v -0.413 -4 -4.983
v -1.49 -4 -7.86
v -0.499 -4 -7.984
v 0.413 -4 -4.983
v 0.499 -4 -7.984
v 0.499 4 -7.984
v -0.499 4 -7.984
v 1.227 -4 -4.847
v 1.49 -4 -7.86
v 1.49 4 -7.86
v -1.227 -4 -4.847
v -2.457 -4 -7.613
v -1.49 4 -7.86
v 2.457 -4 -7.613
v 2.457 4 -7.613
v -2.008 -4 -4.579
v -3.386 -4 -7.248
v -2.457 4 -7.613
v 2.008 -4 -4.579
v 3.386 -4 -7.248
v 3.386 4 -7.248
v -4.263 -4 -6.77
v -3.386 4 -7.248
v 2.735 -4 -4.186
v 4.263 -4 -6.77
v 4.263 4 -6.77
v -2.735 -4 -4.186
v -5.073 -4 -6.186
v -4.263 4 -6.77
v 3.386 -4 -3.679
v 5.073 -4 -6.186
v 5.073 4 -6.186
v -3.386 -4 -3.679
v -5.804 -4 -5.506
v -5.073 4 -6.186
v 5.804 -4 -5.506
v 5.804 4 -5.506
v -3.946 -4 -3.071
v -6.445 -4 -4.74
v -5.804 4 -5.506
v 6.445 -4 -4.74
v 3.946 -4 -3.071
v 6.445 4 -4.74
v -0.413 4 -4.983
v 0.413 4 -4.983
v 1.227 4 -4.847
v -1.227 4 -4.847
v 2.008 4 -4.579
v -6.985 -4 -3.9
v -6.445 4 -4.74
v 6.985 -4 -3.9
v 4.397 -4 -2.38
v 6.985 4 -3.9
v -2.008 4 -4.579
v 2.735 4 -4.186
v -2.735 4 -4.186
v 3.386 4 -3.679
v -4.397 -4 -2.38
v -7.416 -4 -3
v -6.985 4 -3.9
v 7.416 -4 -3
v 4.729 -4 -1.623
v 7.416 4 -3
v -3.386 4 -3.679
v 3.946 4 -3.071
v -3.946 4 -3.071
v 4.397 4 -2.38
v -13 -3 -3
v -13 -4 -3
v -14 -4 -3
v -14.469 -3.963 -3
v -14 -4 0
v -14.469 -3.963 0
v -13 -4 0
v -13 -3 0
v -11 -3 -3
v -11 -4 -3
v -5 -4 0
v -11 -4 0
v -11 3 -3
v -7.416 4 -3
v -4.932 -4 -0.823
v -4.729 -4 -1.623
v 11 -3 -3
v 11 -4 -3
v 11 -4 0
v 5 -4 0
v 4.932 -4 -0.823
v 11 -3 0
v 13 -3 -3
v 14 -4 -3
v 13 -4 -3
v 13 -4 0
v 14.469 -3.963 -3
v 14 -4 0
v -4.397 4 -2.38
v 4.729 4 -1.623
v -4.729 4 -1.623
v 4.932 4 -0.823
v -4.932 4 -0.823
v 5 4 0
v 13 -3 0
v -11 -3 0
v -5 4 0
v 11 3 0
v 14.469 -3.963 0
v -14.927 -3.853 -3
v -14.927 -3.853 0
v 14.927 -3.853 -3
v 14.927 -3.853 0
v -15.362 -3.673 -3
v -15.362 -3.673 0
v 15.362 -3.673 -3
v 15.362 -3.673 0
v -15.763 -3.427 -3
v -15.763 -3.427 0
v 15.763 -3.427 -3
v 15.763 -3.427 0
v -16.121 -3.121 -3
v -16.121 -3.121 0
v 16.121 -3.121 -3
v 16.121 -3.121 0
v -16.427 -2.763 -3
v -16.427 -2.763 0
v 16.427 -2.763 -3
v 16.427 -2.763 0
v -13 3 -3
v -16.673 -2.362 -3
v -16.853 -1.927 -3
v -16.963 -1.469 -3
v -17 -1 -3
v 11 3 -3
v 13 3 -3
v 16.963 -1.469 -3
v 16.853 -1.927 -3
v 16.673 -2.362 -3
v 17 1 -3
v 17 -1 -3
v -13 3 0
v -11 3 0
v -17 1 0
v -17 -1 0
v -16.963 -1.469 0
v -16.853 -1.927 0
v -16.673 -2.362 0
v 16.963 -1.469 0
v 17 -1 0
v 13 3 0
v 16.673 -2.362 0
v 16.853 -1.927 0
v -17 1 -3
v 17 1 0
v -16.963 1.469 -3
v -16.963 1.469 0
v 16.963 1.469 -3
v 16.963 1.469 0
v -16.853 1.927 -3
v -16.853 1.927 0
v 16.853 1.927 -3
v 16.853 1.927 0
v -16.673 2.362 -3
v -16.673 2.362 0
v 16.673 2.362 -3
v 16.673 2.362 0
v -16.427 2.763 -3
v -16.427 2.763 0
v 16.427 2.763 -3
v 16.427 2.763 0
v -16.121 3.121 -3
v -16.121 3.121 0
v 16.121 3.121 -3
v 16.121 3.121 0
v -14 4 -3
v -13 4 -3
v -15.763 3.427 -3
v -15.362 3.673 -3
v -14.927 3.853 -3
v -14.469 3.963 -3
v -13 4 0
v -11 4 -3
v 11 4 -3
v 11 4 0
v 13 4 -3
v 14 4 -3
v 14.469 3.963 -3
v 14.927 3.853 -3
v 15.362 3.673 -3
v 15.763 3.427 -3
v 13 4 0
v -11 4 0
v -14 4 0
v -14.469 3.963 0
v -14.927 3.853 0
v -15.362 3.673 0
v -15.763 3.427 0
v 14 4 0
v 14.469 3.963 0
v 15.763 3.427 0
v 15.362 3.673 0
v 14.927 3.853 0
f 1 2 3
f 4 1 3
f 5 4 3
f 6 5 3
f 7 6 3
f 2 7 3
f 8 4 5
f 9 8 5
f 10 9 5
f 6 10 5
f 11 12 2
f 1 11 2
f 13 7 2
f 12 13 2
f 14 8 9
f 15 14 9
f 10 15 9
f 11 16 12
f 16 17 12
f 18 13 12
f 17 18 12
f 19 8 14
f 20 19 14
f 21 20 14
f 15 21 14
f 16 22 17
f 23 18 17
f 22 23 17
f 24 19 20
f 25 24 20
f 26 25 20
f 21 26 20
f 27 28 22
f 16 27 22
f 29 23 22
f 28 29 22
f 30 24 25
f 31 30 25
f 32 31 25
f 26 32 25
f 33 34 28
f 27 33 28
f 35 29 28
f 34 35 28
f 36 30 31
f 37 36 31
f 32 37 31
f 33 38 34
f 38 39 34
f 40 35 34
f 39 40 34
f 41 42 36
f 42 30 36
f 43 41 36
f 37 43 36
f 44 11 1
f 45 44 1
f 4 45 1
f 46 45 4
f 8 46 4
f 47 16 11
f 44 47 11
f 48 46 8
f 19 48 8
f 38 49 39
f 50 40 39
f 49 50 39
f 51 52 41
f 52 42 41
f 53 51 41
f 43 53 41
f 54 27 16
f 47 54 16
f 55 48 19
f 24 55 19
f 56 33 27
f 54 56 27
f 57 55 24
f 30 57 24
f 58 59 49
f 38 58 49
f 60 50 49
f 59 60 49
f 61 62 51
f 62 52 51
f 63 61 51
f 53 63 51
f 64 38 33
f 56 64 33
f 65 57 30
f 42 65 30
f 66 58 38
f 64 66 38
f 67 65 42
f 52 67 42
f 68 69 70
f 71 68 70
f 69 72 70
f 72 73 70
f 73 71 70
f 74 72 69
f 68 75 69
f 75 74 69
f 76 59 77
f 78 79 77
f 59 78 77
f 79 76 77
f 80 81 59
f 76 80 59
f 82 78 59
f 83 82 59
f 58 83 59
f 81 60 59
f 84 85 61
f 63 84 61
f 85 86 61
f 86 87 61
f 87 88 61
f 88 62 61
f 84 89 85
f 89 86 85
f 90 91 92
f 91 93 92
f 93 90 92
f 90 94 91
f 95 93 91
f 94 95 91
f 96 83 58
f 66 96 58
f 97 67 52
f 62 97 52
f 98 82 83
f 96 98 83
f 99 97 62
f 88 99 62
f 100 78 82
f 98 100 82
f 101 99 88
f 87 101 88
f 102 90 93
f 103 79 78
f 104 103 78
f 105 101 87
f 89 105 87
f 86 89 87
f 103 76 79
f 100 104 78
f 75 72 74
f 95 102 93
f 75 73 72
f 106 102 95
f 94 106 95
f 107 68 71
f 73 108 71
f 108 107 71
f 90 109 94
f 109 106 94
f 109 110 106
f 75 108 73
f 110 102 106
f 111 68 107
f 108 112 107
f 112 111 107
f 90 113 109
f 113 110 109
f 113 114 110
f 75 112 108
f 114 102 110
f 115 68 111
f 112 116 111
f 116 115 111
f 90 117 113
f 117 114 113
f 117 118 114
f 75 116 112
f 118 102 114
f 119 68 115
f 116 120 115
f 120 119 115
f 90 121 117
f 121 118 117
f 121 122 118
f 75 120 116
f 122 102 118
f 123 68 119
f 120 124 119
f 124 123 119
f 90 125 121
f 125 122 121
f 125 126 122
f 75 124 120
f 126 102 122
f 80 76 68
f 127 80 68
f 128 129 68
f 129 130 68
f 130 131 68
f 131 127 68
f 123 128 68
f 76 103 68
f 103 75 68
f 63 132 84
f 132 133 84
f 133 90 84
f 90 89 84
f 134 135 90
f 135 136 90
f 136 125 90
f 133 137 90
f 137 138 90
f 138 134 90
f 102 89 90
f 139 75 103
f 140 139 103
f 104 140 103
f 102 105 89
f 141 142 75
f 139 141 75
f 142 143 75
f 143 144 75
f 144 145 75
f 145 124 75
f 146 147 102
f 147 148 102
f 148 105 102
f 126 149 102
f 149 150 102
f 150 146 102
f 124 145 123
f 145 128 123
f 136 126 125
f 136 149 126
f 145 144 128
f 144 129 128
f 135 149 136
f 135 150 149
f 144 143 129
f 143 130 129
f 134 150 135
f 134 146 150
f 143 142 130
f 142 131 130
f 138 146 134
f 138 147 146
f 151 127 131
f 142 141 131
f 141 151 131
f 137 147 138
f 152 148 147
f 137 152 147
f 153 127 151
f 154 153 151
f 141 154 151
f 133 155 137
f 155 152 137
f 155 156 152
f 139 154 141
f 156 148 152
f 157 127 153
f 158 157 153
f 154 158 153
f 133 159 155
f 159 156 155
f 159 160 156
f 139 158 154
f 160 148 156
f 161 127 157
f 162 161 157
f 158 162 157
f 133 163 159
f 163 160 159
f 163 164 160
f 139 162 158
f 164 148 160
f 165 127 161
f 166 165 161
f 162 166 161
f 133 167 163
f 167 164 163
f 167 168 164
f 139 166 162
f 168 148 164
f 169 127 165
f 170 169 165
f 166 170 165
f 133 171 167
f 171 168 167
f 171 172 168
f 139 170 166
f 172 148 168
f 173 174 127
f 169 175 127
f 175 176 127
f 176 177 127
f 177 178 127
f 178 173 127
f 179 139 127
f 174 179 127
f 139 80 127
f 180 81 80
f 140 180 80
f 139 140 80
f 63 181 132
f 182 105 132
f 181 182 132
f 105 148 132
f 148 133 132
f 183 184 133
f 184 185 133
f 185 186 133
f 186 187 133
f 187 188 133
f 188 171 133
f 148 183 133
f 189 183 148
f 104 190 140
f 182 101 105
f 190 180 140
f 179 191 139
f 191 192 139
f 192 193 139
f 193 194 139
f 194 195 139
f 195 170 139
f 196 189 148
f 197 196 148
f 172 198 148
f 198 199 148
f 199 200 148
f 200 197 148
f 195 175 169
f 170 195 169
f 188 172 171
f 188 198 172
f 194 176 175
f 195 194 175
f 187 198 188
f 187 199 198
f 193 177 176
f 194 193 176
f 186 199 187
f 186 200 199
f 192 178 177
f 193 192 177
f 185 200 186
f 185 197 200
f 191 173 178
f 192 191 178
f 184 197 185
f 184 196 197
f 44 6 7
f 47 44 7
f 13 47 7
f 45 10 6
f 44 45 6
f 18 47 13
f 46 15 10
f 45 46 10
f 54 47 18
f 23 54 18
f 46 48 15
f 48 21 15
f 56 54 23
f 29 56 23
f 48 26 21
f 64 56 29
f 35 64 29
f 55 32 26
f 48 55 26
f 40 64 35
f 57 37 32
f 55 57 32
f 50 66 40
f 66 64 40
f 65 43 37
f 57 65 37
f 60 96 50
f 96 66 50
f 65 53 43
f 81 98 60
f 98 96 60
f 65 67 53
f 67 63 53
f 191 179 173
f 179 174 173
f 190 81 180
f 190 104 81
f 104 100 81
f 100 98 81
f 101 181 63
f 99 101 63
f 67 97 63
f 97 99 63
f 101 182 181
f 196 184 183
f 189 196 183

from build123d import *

# Parameters (mm, degrees)
EXTRUDE_1_DEPTH     = 4
SKETCH_2_W          = 2
SKETCH_2_H          = 3
CUT_EXTRUDE_1_DEPTH = 1
FILLET_1_R          = 3


with BuildPart() as part:
    # 草圖1 → 填料-伸長1 (new body, symmetric)
    with BuildSketch(Plane(origin=(0, 0, 0), x_dir=(1, 0, 0), z_dir=(0, 1, 0))):
        with BuildLine():
            Line((-5, 0), (-17, 0))
            Line((-17, 0), (-17, 3))
            Line((-17, 3), (-7.416198487, 3))
            ThreePointArc((-7.416198487, 3), (0, 8), (7.416198487, 3))
            Line((7.416198487, 3), (17, 3))
            Line((17, 3), (17, 0))
            Line((17, 0), (5, 0))
            ThreePointArc((5, 0), (0, 5), (-5, 0))
        make_face()
    extrude(amount=EXTRUDE_1_DEPTH, both=True)

    # 草圖2 → 除料-伸長1 (cut)
    with BuildSketch(Plane(origin=(0, 4, 0), x_dir=(1, 0, 0), z_dir=(0, 1, 0))):
        with Locations((-12, 1.5)):
            Rectangle(SKETCH_2_W, SKETCH_2_H)
        with Locations((12, 1.5)):
            Rectangle(SKETCH_2_W, SKETCH_2_H)
    cut_extrude_1 = extrude(amount=-CUT_EXTRUDE_1_DEPTH, mode=Mode.SUBTRACT)

    # 鏡射1: 除料-伸長1 across plane
    add(cut_extrude_1.mirror(Plane.ZX), mode=Mode.SUBTRACT)

    # 圓角1
    fillet_1_edges = [part.edges().sort_by_distance(p)[0] for p in [
        (17, 4, -1.5),
        (-17, 4, -1.5),
        (-17, -4, -1.5),
        (17, -4, -1.5),
    ]]
    fillet(fillet_1_edges, radius=FILLET_1_R)


solid = part.part
